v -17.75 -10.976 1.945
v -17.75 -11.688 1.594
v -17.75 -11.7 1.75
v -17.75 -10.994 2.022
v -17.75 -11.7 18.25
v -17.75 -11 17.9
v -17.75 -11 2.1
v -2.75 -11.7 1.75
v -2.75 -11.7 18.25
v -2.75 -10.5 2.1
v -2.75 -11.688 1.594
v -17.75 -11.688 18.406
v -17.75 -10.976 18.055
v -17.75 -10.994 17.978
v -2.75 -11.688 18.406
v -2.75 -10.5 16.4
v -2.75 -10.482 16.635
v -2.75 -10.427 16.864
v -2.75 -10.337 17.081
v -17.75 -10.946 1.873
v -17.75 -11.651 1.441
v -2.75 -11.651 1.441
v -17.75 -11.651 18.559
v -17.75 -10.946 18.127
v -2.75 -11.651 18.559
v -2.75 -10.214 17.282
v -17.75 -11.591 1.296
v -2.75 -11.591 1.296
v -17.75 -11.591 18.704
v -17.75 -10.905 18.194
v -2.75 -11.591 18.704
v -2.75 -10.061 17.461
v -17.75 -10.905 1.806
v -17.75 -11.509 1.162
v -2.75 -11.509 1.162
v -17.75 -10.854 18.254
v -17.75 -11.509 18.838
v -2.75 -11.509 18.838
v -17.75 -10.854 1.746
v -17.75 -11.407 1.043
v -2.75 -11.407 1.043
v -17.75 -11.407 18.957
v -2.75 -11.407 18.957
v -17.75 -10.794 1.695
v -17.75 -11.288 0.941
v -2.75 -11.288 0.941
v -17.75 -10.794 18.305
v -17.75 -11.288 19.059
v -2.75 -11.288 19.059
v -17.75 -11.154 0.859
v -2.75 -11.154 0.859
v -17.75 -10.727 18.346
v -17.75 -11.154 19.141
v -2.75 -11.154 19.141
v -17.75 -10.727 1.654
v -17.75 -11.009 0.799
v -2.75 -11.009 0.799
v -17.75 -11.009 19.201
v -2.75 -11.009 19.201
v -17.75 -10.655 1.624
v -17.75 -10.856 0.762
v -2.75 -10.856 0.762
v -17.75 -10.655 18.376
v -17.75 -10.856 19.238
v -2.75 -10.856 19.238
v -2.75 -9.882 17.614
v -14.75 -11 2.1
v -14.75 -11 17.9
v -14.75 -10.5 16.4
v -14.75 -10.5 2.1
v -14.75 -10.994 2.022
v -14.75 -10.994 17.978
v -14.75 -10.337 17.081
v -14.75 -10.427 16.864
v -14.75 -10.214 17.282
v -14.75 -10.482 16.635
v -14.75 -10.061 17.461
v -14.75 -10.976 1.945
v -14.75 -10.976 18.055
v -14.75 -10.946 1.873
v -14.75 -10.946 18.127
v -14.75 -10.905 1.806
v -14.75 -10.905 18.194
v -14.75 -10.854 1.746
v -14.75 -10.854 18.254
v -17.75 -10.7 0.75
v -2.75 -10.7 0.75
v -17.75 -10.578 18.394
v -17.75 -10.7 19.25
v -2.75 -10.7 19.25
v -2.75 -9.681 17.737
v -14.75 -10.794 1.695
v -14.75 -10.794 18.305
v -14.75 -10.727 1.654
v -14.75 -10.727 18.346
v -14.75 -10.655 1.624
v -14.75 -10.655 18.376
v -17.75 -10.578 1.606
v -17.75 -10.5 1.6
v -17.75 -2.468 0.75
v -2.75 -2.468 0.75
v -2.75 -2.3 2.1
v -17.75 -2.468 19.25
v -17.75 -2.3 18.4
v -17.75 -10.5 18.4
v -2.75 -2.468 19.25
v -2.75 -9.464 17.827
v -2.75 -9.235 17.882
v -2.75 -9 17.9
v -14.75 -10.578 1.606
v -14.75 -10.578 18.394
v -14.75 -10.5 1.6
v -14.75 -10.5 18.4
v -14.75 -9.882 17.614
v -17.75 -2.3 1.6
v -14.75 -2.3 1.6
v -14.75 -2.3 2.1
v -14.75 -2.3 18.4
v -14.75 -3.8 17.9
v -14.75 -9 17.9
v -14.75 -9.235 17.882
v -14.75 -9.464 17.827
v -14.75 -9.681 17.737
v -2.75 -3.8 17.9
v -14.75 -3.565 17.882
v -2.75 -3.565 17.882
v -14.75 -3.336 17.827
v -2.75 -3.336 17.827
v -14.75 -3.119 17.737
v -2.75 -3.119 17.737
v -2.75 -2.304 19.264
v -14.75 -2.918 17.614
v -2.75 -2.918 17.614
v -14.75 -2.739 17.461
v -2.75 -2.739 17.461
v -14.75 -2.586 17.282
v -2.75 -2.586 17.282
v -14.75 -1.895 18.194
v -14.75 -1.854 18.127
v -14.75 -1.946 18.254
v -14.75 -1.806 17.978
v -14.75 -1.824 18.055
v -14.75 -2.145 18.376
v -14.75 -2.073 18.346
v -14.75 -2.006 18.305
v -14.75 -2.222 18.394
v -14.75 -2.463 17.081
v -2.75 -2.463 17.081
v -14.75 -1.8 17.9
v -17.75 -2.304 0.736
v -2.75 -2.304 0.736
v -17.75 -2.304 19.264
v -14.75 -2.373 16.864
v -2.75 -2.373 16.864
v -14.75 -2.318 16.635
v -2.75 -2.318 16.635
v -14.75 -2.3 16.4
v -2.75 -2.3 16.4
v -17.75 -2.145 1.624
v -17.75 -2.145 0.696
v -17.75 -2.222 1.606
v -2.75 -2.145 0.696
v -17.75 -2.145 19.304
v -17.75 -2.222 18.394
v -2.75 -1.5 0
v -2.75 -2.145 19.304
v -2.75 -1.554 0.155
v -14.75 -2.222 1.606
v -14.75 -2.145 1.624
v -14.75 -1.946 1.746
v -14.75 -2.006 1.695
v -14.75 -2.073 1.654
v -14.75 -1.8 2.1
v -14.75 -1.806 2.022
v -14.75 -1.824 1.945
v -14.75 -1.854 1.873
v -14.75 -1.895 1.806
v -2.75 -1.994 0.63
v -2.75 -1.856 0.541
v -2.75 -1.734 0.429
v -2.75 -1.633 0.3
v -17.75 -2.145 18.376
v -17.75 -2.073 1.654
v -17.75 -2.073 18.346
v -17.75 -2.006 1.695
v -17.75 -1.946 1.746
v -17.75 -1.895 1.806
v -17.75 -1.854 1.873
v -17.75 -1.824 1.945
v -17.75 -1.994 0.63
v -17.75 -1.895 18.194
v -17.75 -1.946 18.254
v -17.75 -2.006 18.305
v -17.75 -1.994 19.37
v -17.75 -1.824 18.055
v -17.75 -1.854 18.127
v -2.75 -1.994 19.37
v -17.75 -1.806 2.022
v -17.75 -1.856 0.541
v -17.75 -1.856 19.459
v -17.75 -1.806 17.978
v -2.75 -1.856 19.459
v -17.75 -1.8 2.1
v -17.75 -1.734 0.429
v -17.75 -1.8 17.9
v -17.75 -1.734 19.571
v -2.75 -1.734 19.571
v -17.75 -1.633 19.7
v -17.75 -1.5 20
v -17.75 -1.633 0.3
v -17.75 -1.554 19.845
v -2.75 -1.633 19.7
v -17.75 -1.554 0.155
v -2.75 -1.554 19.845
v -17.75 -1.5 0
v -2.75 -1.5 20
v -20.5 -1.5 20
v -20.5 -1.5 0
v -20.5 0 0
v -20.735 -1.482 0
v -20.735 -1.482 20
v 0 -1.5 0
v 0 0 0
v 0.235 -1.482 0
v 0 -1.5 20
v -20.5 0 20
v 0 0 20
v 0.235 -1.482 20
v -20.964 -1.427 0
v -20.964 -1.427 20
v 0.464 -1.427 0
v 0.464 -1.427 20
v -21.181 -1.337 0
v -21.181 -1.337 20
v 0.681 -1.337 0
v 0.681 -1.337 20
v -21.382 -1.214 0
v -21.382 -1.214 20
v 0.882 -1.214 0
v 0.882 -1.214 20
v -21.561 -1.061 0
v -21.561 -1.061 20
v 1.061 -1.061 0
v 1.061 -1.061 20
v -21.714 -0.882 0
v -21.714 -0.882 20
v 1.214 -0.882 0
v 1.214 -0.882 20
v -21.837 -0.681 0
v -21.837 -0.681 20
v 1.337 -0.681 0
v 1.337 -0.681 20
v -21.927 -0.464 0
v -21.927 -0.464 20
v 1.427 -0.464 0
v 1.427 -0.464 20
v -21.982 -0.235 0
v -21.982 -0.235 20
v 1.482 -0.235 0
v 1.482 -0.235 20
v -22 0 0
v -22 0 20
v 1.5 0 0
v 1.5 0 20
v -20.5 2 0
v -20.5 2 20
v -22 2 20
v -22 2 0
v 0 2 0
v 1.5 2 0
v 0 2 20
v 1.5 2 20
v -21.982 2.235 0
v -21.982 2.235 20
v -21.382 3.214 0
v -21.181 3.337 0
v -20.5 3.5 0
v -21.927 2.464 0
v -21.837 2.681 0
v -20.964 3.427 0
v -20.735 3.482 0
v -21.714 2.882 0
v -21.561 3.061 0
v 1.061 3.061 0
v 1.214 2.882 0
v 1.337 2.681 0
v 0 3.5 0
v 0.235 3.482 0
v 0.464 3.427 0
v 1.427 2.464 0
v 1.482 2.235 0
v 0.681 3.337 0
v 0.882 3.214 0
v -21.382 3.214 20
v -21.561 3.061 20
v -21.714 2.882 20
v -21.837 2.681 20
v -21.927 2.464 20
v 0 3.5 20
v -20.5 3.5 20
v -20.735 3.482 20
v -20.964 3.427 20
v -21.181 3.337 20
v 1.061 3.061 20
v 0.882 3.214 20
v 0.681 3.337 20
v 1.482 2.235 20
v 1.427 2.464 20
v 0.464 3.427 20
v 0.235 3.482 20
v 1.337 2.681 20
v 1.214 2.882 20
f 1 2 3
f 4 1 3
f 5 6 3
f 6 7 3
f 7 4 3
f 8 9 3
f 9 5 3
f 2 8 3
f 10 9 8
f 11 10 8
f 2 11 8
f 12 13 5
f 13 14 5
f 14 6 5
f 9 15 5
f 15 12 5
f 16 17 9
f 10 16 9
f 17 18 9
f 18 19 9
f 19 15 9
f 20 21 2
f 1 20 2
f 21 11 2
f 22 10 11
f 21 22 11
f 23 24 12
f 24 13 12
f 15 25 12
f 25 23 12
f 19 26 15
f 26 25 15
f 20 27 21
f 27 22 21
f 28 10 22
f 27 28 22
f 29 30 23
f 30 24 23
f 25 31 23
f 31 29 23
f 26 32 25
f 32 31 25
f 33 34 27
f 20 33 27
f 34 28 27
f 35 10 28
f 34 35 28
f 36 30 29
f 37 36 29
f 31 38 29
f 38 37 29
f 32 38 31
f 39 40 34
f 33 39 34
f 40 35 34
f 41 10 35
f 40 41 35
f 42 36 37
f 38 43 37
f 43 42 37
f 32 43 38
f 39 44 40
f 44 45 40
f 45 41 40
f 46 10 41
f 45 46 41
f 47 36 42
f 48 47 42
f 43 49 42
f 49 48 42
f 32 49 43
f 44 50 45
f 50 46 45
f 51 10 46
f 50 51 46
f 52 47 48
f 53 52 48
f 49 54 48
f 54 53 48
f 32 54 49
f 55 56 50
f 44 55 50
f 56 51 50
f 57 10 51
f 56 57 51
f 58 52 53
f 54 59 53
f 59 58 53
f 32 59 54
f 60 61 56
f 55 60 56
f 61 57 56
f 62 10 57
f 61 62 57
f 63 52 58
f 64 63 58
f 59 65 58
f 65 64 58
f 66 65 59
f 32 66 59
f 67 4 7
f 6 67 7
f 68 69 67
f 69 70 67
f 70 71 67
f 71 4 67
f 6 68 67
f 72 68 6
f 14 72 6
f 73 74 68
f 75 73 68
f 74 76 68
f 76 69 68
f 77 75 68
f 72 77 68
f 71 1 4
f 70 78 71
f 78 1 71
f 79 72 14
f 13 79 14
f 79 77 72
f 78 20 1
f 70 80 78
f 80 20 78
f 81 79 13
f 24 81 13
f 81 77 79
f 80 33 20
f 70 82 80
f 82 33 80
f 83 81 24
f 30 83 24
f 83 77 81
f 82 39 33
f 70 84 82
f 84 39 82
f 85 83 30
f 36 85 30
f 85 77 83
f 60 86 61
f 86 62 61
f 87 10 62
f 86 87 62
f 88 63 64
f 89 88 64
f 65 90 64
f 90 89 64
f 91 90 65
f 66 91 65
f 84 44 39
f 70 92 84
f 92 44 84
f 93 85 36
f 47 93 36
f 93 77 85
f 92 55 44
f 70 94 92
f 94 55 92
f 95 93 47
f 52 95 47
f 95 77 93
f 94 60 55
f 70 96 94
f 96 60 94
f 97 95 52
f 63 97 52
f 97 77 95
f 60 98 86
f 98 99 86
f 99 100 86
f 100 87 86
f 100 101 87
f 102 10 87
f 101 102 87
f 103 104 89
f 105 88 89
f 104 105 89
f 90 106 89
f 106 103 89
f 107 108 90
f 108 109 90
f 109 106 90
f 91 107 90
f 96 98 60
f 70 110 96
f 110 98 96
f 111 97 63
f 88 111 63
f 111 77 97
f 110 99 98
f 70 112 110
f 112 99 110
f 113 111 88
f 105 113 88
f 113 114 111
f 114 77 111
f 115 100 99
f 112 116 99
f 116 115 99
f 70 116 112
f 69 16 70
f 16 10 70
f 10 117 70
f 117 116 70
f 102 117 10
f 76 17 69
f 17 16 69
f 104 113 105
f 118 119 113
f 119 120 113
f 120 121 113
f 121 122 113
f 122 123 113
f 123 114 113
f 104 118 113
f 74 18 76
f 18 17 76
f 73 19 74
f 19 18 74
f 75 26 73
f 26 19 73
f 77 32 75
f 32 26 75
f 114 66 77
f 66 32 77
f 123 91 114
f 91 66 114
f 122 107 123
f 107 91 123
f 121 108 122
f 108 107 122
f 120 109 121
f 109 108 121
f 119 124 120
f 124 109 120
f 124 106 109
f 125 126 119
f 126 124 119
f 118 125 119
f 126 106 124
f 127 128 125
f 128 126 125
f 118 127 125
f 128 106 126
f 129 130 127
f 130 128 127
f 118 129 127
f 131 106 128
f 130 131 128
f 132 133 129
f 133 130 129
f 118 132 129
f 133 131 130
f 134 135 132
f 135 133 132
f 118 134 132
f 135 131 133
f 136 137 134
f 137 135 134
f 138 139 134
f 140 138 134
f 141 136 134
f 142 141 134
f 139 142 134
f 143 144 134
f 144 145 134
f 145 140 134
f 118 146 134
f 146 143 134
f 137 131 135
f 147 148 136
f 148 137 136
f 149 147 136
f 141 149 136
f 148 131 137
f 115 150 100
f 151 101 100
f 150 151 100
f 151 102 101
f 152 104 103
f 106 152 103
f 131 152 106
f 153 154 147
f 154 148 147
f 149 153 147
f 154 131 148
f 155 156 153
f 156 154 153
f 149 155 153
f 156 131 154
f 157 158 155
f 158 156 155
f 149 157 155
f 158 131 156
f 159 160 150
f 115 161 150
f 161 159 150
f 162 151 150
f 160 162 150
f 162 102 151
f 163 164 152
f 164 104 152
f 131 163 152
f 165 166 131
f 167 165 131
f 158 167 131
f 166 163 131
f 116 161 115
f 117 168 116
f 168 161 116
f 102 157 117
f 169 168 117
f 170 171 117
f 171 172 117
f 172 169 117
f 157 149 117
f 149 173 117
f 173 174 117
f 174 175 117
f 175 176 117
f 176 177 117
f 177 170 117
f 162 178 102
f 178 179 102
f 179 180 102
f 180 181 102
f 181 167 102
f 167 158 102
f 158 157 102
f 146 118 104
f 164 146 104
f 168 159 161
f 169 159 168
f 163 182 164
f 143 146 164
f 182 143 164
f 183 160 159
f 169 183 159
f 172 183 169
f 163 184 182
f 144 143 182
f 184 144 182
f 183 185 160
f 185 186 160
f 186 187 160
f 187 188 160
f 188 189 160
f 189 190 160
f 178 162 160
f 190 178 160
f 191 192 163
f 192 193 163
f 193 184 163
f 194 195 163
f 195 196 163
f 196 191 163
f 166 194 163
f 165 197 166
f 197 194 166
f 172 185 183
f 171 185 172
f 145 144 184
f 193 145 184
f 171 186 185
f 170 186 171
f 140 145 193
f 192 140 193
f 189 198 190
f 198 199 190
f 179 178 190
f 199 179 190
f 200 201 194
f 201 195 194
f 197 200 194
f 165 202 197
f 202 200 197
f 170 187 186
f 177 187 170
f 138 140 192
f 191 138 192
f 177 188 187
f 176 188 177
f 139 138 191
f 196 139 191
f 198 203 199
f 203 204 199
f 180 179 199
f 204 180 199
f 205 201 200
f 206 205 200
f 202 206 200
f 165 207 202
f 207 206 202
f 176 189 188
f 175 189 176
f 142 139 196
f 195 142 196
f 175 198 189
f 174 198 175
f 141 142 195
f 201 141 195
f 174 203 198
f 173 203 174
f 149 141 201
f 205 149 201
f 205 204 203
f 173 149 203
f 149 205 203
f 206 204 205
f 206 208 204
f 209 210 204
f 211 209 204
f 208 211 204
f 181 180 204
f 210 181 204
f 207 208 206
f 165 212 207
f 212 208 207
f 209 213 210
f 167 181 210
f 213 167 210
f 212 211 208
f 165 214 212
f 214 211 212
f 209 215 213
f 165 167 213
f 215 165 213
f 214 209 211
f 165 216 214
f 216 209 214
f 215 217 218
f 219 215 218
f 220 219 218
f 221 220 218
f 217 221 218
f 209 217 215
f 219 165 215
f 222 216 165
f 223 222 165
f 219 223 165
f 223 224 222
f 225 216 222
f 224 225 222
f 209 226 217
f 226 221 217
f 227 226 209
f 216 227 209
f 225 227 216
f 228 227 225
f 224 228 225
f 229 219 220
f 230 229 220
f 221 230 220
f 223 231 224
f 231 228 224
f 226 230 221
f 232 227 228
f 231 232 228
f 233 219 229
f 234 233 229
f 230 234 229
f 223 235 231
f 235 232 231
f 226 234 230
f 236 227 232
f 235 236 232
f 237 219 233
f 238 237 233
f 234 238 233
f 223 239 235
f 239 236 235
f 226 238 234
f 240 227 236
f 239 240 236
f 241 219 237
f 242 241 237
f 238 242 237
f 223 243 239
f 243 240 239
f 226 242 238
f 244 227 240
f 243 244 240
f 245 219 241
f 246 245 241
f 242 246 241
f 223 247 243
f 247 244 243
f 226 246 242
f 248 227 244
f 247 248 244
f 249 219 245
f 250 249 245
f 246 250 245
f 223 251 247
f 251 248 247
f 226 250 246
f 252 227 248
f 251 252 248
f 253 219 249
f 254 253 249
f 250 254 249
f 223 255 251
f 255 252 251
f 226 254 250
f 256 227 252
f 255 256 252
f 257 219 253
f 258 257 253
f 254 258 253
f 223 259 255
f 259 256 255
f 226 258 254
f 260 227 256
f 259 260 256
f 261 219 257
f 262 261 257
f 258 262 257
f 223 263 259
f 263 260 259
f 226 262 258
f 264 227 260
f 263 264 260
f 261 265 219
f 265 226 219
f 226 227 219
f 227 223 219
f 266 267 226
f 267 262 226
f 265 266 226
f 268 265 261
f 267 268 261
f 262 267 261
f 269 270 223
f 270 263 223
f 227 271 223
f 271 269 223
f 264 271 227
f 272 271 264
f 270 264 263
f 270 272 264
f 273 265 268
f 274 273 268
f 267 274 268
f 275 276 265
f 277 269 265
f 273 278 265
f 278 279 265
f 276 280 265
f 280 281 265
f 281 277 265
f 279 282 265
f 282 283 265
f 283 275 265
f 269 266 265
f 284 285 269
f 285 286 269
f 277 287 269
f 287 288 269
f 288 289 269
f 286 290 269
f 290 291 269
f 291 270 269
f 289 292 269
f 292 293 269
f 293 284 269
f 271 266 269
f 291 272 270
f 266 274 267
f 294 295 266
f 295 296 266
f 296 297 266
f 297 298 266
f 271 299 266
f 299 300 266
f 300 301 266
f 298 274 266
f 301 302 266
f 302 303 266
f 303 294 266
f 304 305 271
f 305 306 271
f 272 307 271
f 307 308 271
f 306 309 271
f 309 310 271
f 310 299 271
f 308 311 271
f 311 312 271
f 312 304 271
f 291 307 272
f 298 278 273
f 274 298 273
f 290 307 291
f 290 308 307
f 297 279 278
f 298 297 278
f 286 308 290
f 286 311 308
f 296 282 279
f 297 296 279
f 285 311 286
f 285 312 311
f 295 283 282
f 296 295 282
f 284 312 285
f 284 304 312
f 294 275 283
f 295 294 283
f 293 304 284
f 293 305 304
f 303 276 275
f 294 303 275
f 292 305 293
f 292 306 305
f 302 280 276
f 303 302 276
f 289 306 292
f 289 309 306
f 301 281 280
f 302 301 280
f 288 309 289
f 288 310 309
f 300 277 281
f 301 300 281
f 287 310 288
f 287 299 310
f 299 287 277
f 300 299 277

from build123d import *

# Parameters (mm, degrees)
CROQUIS1_W              = 23.5
CROQUIS1_H              = 5
CROQUIS1_W_2            = 20.5
CROQUIS1_H_2            = 2
SALIENTE_EXTRUIR1_DEPTH = 20
CROQUIS5_W              = 15
CROQUIS5_H              = 18.5
SALIENTE_EXTRUIR3_DEPTH = 10.2
CROQUIS6_W              = 15.8
CROQUIS6_H              = 8.2
CORTAR_EXTRUIR2_DEPTH   = 15
REDONDEO3_R             = 1.5
CORTAR_EXTRUIR3_DEPTH   = 3
REDONDEO4_R             = 1
REDONDEO5_R             = 1.5


with BuildPart() as part:
    # Croquis1 → Saliente-Extruir1 (new body)
    with BuildSketch(Plane.XY):
        with Locations((-10.25, 1)):
            Rectangle(CROQUIS1_W, CROQUIS1_H)
        with Locations((-10.25, 1)):
            Rectangle(CROQUIS1_W_2, CROQUIS1_H_2, mode=Mode.SUBTRACT)
    extrude(amount=SALIENTE_EXTRUIR1_DEPTH)

    # Croquis5 → Saliente-Extruir3 (add)
    with BuildSketch(Plane.XZ.offset(1.5)):
        with Locations((-10.25, 10)):
            Rectangle(CROQUIS5_W, CROQUIS5_H)
    extrude(amount=SALIENTE_EXTRUIR3_DEPTH)

    # Croquis6 → Cortar-Extruir2 (cut)
    with BuildSketch(Plane.ZY.offset(17.75)):
        with Locations((10, -6.4)):
            Rectangle(CROQUIS6_W, CROQUIS6_H)
    extrude(amount=-CORTAR_EXTRUIR2_DEPTH, mode=Mode.SUBTRACT)

    # Redondeo3
    redondeo3_edges = [part.edges().sort_by_distance(p)[0] for p in [
        (-10.25, -2.3, 17.9),
        (-10.25, -10.5, 17.9),
    ]]
    fillet(redondeo3_edges, radius=REDONDEO3_R)

    # Croquis7 → Cortar-Extruir3 (cut)
    with BuildSketch(Plane.ZY.offset(17.75)):
        with BuildLine():
            Line((17.9, -11), (2.1, -11))
            ThreePointArc((2.1, -11), (1.746446609, -10.853553391), (1.6, -10.5))
            Line((1.6, -10.5), (1.6, -2.3))
            ThreePointArc((1.6, -2.3), (1.746446609, -1.946446609), (2.1, -1.8))
            Line((2.1, -1.8), (17.9, -1.8))
            ThreePointArc((17.9, -1.8), (18.253553391, -1.946446609), (18.4, -2.3))
            Line((18.4, -2.3), (18.4, -10.5))
            ThreePointArc((18.4, -10.5), (18.253553391, -10.853553391), (17.9, -11))
        make_face()
    extrude(amount=-CORTAR_EXTRUIR3_DEPTH, mode=Mode.SUBTRACT)

    # Redondeo4
    # the kernel refuses this fillet: 1 mm, written as the material it adds along each edge
    with BuildSketch(Plane(origin=(-2.75, -1.5, 0.75), x_dir=(0, 0, -1), z_dir=(-1, 0, 0))) as redondeo4_piece_1:
        with BuildLine():
            CenterArc((1, 0.968245837), REDONDEO4_R, 180, 75.522487814)
            Line((0, 0.968245837), (0, 0))
            Line((0, 0), (0.75, 0))
        make_face()
    extrude(amount=15)
    with BuildSketch(Plane(origin=(-17.75, -1.5, 19.25), x_dir=(0, -1, 0), z_dir=(1, 0, 0))) as redondeo4_piece_2:
        with BuildLine():
            CenterArc((0.968245837, -1), REDONDEO4_R, 90, 75.522487814)
            Line((0, -0.75), (0, 0))
            Line((0, 0), (0.968245837, 0))
        make_face()
    extrude(amount=15)
    # the kernel refuses this fillet: 1 mm, written as the material it takes off along each edge
    with BuildSketch(Plane(origin=(-0.25, -11.7, 0.75), x_dir=(0, 1, 0), z_dir=(-1, 0, 0))) as redondeo4_2_piece_1:
        with BuildLine():
            CenterArc((REDONDEO4_R, -REDONDEO4_R), REDONDEO4_R, 90, 90)
            Line((0, -REDONDEO4_R), (0, 0))
            Line((0, 0), (REDONDEO4_R, 0))
        make_face()
    extrude(amount=20, mode=Mode.SUBTRACT)
    with BuildSketch(Plane(origin=(-20.25, -11.7, 19.25), x_dir=(0, 0, -1), z_dir=(1, 0, 0))) as redondeo4_2_piece_2:
        with BuildLine():
            CenterArc((REDONDEO4_R, REDONDEO4_R), REDONDEO4_R, 180, 90)
            Line((0, REDONDEO4_R), (0, 0))
            Line((0, 0), (REDONDEO4_R, 0))
        make_face()
    extrude(amount=20, mode=Mode.SUBTRACT)

    # Redondeo5
    redondeo5_edges = [part.edges().sort_by_distance(p)[0] for p in [
        (-22, -1.5, 10),
        (-22, 3.5, 10),
        (1.5, 3.5, 10),
        (1.5, -1.5, 10),
    ]]
    fillet(redondeo5_edges, radius=REDONDEO5_R)


solid = part.part
